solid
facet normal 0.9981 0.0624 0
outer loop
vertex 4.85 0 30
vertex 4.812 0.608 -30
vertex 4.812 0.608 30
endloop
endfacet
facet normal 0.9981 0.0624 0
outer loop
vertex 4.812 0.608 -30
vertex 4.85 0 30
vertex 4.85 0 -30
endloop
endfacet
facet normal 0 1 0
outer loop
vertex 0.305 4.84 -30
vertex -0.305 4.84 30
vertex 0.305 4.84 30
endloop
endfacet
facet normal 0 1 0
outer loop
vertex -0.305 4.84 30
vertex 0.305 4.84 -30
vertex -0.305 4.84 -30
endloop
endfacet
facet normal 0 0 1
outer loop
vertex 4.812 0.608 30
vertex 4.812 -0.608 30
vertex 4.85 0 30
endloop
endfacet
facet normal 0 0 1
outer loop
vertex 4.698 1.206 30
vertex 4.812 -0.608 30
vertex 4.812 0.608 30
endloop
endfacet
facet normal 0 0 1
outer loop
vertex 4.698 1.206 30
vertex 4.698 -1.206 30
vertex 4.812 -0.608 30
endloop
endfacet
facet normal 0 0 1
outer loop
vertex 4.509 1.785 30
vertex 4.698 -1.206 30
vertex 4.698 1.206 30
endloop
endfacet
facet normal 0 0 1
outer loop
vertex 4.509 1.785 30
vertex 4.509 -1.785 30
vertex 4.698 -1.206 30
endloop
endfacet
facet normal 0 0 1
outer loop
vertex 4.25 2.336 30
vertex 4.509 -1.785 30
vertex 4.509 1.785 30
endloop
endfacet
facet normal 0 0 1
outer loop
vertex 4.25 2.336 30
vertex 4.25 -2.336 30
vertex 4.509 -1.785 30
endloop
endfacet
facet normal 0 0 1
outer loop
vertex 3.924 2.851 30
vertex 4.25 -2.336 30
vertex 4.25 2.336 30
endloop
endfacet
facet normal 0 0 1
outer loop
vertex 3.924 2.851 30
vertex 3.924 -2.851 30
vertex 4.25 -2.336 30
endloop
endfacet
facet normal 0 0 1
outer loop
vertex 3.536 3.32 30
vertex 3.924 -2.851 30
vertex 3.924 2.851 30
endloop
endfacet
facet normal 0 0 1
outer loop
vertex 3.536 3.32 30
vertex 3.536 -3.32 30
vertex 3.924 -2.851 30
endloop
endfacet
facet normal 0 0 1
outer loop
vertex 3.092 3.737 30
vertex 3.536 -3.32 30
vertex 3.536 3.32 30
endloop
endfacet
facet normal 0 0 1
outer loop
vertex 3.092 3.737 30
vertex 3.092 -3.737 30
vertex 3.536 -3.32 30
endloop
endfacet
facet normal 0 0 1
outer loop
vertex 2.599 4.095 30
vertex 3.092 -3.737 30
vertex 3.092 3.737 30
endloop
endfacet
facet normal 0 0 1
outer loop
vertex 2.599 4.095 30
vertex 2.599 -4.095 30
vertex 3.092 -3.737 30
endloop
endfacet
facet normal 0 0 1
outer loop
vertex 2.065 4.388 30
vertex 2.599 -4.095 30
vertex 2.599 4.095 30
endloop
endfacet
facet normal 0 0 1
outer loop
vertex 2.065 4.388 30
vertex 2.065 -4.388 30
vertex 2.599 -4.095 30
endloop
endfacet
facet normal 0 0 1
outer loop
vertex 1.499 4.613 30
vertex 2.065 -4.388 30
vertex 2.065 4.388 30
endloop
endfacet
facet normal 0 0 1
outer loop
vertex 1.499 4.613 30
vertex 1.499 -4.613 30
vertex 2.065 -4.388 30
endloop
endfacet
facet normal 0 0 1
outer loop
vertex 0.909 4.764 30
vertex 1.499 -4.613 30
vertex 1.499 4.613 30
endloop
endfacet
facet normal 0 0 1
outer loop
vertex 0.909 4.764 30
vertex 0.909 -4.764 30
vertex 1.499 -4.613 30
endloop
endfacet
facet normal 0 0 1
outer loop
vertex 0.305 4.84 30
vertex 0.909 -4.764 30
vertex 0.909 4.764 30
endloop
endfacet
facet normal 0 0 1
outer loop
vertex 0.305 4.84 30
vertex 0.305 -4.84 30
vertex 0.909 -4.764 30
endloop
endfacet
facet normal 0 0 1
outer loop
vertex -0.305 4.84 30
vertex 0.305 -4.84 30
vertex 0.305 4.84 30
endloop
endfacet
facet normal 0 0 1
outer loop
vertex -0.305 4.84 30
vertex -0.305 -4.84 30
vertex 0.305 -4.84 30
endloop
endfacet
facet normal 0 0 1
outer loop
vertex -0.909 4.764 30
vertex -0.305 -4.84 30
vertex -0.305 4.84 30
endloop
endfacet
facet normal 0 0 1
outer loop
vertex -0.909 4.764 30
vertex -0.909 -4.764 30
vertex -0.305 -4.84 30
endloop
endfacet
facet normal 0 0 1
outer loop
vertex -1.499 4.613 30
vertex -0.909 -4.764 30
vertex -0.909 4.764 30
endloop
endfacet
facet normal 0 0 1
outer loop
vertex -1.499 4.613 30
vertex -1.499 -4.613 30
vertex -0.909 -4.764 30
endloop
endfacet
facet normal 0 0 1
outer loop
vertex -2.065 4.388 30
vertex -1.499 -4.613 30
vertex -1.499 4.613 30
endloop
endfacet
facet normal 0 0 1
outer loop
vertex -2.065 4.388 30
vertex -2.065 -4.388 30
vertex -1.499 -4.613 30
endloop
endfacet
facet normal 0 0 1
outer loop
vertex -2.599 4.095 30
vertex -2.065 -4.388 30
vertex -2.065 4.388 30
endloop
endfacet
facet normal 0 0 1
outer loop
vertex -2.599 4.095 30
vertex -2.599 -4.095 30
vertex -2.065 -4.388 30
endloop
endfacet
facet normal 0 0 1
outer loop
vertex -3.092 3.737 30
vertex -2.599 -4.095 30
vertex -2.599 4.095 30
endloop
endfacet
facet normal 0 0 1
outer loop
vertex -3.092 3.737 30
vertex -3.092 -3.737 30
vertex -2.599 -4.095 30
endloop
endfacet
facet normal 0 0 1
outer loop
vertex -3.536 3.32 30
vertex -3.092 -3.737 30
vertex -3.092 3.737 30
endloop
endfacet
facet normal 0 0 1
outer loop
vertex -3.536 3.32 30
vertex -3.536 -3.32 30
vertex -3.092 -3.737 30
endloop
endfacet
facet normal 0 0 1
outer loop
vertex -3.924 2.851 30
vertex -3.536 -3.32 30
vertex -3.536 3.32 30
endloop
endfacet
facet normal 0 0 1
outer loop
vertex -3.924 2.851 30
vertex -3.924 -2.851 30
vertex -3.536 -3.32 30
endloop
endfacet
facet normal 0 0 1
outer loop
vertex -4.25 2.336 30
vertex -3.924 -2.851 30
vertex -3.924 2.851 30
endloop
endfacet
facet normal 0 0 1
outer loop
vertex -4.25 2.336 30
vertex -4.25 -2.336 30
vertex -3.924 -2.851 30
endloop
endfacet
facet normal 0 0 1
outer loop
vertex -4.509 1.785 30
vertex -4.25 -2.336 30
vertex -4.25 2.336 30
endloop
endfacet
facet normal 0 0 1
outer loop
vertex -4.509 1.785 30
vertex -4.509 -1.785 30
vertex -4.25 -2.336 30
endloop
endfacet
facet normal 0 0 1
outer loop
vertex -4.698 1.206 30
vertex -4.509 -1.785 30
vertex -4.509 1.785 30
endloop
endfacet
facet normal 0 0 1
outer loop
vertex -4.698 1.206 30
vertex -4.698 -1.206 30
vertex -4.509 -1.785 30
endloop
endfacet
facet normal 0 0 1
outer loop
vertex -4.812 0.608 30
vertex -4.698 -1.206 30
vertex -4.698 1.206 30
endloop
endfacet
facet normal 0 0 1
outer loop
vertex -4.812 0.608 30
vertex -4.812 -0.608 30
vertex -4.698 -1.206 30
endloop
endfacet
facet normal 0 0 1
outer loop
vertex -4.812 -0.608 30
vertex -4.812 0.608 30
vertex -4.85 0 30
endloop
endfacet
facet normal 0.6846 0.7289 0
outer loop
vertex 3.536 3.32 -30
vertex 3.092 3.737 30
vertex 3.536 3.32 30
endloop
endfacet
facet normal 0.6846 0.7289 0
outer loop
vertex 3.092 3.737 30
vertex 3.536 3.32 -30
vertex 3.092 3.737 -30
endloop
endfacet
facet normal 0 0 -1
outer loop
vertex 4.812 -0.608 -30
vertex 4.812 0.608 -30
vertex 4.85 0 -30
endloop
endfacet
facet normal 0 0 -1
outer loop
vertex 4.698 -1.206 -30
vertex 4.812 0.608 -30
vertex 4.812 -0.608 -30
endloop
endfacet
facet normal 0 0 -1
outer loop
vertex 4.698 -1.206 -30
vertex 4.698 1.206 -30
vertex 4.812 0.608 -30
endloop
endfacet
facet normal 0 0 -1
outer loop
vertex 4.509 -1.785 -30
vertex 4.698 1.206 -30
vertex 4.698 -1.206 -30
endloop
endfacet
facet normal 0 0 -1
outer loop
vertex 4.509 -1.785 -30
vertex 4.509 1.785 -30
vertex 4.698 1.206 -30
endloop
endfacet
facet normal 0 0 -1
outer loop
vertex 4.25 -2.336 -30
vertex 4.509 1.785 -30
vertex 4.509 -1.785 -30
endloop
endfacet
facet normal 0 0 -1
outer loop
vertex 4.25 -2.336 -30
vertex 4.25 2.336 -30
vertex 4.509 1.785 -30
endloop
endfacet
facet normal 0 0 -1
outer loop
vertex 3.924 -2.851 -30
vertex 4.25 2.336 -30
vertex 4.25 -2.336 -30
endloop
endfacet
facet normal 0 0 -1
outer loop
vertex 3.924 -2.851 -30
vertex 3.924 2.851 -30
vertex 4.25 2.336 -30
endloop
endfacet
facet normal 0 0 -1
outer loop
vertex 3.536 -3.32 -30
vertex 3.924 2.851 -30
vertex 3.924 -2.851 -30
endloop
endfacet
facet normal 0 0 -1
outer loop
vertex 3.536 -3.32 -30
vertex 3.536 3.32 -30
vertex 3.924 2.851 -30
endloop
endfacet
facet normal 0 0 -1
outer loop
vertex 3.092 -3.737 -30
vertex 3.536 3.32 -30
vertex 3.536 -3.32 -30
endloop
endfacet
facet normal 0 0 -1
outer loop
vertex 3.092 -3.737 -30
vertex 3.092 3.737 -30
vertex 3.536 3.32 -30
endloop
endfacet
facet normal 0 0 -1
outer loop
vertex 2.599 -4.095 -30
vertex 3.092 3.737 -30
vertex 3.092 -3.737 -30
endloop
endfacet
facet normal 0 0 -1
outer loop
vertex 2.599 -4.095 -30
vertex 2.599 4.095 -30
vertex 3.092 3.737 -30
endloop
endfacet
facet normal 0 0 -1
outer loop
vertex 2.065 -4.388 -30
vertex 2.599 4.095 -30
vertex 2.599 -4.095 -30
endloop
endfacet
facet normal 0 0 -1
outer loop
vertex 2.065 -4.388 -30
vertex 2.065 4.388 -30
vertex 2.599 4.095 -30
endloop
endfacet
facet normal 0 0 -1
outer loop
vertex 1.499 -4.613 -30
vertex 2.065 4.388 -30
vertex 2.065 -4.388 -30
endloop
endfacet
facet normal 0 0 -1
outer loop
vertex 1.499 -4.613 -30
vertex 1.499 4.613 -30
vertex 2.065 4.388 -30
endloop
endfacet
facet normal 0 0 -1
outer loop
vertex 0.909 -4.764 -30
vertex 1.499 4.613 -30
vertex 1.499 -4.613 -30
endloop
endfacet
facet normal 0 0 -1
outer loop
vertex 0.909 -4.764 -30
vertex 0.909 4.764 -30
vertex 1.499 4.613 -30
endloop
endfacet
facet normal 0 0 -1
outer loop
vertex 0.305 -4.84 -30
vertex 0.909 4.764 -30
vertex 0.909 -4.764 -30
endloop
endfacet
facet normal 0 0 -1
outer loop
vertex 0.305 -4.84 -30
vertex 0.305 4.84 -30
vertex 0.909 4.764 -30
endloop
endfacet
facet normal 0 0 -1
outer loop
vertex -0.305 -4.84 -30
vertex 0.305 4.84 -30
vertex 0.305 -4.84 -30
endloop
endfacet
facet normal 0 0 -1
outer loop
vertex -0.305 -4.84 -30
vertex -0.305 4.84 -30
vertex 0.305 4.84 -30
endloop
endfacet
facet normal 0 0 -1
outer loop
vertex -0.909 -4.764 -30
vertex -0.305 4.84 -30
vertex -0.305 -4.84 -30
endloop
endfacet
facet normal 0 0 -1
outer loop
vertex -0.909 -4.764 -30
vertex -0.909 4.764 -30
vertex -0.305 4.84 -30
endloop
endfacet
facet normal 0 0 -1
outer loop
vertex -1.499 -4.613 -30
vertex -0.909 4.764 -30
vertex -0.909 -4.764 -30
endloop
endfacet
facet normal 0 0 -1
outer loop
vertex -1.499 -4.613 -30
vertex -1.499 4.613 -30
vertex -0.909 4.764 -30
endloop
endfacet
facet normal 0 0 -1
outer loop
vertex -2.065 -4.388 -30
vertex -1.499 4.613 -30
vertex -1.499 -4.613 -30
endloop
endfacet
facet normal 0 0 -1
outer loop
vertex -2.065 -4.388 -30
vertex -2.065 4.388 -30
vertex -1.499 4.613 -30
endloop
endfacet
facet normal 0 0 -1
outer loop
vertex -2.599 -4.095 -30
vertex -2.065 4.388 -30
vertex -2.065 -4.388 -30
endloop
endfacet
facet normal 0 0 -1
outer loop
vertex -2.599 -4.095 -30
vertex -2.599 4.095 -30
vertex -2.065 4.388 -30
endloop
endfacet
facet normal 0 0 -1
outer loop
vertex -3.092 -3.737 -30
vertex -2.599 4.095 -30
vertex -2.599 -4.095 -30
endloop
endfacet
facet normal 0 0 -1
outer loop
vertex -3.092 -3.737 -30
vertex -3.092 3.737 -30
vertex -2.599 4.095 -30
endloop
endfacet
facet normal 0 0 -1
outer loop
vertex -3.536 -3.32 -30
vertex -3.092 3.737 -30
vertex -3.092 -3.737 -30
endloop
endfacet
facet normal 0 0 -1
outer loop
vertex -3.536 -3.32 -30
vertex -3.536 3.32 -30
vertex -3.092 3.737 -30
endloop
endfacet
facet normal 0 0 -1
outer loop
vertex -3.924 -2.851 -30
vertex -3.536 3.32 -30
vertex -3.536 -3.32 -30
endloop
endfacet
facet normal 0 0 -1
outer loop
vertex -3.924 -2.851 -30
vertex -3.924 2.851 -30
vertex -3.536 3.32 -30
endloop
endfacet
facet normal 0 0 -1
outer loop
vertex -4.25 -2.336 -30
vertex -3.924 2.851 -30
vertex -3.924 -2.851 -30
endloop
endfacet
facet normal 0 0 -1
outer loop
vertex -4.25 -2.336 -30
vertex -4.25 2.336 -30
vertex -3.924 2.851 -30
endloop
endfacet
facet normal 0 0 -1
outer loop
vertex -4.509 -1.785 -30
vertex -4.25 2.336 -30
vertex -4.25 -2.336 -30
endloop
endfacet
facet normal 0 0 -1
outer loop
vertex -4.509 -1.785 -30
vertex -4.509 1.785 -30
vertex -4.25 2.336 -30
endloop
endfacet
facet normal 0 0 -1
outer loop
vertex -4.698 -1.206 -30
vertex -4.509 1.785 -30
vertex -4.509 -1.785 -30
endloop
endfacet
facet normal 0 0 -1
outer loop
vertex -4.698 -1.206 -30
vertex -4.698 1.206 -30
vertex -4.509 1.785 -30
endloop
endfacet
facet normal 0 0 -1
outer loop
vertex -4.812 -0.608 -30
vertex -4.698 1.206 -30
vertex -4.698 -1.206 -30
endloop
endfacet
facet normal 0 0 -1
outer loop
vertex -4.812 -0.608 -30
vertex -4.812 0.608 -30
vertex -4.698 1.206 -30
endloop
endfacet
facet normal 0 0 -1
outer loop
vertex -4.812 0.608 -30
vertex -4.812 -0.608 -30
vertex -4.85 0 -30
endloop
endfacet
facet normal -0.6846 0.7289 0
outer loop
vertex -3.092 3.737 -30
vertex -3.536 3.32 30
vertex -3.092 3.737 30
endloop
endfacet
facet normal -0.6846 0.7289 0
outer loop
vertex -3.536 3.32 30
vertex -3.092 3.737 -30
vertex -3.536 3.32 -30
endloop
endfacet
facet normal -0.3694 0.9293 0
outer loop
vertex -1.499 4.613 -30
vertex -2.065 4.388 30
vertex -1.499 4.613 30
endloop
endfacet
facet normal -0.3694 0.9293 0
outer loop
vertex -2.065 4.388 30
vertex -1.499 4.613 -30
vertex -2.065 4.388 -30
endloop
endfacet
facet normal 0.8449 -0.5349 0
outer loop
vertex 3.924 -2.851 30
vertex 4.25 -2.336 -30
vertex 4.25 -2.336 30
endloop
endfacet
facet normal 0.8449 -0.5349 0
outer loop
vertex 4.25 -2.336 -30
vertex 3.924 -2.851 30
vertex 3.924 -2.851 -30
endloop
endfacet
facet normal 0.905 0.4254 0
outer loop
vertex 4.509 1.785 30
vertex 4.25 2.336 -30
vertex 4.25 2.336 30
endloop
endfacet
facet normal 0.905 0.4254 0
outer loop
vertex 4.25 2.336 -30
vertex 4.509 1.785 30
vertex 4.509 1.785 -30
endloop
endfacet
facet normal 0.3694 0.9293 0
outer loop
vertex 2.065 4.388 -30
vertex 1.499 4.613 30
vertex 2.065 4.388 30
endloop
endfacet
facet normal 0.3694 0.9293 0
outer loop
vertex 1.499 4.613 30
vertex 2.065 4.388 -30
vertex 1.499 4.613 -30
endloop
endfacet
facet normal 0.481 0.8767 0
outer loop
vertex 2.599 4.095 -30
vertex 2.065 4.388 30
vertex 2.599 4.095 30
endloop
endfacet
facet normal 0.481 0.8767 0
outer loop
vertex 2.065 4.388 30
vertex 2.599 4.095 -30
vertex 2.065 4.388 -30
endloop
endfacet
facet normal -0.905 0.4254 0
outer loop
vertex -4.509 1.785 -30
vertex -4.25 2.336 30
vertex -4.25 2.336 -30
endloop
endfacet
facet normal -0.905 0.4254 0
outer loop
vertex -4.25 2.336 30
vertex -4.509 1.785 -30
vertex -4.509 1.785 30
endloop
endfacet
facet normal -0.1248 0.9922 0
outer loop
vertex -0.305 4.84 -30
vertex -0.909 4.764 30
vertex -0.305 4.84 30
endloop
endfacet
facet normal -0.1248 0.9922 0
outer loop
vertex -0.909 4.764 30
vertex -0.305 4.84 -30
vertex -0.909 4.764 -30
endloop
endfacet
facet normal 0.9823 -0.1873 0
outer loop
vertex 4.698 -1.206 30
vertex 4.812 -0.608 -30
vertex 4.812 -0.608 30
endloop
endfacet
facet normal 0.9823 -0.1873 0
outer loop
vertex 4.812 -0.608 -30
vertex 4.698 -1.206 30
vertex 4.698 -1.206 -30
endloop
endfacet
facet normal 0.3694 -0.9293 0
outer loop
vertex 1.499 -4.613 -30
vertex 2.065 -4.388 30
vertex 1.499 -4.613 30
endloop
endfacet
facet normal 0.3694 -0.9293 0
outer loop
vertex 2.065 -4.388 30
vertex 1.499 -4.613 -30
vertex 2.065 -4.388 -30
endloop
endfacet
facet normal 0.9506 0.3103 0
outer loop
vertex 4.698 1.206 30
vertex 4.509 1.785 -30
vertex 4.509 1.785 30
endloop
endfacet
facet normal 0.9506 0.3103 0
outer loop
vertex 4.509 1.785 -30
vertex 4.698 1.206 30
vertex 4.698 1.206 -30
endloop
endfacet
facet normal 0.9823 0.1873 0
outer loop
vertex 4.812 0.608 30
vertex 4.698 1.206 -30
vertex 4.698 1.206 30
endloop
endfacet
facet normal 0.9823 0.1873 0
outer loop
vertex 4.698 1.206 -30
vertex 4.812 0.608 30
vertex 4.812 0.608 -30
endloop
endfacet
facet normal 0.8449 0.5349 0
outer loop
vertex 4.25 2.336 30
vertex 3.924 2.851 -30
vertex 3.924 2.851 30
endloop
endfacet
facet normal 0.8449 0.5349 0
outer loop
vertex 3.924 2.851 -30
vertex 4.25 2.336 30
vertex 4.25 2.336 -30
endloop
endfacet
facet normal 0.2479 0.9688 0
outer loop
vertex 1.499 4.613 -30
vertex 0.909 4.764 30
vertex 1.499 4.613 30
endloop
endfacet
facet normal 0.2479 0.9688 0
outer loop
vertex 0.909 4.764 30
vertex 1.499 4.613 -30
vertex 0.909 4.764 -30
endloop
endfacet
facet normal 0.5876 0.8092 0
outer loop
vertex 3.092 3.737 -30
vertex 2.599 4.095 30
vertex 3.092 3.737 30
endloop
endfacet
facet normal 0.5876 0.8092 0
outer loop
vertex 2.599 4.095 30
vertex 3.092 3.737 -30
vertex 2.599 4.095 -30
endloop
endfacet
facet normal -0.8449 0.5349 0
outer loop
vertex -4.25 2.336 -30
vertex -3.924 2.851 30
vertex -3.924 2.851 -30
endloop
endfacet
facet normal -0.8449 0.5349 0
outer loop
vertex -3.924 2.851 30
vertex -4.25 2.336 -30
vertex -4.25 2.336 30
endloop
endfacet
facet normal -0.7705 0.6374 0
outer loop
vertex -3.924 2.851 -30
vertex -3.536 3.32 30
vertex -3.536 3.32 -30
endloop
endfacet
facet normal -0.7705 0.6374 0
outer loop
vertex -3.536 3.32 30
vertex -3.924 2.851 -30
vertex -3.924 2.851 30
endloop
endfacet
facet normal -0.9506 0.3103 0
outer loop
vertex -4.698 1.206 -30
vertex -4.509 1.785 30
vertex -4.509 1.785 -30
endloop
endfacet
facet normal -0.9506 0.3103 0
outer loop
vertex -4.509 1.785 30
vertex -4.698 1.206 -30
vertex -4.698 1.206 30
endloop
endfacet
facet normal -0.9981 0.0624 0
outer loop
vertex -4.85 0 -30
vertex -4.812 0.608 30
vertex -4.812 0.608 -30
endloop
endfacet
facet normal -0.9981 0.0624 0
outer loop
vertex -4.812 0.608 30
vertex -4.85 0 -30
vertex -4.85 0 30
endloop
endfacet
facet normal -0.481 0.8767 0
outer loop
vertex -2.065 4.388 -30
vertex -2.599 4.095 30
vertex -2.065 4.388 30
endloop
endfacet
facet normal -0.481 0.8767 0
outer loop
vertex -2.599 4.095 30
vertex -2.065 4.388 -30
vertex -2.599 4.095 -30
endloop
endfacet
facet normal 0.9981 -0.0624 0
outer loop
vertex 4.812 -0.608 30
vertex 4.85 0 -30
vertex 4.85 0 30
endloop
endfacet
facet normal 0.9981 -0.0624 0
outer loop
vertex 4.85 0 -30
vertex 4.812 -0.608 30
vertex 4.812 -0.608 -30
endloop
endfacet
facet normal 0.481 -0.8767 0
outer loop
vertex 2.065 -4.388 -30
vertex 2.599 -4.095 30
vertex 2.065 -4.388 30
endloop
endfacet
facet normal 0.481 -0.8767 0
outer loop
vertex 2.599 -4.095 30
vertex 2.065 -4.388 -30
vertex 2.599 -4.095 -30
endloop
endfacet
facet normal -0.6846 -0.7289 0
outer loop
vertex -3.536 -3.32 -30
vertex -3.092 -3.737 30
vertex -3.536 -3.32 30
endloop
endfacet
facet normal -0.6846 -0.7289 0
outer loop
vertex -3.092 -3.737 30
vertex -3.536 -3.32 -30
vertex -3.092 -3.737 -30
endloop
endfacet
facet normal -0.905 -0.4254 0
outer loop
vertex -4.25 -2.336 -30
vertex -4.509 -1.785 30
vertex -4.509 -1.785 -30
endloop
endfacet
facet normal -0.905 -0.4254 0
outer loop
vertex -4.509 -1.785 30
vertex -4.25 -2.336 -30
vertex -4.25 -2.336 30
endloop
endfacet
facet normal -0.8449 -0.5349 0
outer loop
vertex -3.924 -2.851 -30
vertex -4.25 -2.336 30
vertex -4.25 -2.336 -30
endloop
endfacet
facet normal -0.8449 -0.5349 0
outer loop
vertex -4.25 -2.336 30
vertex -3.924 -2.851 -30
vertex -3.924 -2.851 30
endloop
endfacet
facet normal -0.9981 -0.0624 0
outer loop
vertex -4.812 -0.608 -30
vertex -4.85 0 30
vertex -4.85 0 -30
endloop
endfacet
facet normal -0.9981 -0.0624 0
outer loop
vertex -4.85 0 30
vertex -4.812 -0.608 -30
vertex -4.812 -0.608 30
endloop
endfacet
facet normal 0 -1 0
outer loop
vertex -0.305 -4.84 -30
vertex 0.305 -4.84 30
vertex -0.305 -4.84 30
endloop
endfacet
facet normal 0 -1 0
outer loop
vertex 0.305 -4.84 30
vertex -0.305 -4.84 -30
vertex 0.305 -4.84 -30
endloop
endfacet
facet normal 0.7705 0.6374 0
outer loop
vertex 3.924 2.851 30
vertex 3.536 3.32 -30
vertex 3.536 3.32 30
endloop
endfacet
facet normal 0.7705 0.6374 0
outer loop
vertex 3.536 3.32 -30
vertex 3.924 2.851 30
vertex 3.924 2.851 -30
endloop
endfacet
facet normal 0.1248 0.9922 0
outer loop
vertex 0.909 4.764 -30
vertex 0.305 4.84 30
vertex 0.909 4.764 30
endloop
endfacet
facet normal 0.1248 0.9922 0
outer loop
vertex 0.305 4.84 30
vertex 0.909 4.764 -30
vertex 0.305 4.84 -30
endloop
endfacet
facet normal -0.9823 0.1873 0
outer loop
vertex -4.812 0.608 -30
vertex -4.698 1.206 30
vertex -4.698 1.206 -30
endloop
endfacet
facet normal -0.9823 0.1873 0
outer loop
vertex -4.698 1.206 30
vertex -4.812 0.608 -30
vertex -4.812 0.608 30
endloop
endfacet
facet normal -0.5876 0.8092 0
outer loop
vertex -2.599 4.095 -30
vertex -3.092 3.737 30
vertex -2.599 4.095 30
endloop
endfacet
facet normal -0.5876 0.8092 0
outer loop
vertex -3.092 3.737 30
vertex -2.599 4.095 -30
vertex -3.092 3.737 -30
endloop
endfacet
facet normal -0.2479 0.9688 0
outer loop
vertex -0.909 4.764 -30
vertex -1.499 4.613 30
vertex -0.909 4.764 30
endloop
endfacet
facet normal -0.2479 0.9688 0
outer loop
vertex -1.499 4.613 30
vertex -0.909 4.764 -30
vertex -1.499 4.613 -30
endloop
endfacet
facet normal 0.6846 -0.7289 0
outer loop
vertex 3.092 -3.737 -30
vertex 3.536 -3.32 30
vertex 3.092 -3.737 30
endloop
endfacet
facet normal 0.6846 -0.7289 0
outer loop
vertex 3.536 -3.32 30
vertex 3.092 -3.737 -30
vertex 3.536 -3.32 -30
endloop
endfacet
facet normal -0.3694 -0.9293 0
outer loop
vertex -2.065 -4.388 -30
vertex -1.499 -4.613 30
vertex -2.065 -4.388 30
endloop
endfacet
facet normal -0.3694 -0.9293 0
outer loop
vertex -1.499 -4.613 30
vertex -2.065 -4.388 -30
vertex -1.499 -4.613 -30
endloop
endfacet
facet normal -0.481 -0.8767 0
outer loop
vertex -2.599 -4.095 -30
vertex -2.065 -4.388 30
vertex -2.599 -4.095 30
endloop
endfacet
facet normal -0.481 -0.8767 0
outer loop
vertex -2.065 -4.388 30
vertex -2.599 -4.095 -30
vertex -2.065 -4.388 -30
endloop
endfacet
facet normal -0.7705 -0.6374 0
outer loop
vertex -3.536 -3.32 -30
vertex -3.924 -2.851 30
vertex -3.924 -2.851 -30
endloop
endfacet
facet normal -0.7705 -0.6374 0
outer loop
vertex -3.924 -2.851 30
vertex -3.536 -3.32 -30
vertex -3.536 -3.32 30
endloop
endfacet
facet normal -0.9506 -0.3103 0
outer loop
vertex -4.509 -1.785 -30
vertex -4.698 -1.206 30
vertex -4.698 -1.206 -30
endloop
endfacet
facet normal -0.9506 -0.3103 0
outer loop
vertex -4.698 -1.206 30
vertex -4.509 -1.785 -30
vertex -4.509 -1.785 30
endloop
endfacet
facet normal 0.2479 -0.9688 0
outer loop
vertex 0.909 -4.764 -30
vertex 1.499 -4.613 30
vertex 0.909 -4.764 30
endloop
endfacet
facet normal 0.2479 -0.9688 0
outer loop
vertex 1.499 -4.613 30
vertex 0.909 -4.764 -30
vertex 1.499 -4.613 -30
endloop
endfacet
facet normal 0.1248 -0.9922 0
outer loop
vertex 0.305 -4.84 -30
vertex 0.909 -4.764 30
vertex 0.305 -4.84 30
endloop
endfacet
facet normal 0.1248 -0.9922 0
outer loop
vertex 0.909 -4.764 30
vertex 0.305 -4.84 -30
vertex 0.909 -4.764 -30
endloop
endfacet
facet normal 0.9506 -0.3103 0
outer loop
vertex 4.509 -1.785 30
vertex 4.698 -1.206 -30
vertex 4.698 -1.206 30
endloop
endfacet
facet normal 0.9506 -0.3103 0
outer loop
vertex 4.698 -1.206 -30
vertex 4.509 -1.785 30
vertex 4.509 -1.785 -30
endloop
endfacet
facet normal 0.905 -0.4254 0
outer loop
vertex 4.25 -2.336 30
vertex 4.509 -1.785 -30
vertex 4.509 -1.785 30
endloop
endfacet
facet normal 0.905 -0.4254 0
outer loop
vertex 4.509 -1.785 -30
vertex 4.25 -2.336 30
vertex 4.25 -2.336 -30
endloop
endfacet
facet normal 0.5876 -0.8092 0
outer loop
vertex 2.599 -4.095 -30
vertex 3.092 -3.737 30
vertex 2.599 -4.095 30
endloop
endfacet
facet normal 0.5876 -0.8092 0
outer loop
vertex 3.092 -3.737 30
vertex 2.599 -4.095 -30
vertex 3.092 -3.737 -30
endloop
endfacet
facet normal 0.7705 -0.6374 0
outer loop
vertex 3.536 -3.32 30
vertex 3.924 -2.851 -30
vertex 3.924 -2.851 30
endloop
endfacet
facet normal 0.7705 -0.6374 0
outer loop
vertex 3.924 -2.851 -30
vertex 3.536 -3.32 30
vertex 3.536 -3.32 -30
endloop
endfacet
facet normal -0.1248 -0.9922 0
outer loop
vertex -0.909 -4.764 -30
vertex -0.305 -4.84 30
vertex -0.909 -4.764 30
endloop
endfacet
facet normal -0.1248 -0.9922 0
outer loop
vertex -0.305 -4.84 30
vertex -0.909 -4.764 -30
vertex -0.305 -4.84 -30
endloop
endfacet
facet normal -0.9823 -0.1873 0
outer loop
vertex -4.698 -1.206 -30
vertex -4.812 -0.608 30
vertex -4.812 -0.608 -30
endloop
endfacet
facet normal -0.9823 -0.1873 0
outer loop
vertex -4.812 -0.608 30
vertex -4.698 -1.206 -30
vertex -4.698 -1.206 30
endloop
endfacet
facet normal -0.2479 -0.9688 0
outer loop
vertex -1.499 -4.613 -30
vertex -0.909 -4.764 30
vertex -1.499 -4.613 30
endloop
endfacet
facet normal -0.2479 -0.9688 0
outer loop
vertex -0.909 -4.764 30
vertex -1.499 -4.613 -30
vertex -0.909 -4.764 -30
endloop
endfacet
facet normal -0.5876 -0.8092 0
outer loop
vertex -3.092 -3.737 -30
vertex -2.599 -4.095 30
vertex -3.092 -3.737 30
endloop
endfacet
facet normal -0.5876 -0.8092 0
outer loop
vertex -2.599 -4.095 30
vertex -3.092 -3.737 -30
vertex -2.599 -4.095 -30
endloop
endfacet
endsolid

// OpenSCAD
$fn = 50;


difference() {
	union() {
		translate(v = [0, 0, -30.0000000000]) {
			cylinder(h = 60, r = 4.8500000000);
		}
	}
	union() {
		translate(v = [0, 0, -100.0000000000]) {
			cylinder(h = 200, r = 0);
		}
	}
}
